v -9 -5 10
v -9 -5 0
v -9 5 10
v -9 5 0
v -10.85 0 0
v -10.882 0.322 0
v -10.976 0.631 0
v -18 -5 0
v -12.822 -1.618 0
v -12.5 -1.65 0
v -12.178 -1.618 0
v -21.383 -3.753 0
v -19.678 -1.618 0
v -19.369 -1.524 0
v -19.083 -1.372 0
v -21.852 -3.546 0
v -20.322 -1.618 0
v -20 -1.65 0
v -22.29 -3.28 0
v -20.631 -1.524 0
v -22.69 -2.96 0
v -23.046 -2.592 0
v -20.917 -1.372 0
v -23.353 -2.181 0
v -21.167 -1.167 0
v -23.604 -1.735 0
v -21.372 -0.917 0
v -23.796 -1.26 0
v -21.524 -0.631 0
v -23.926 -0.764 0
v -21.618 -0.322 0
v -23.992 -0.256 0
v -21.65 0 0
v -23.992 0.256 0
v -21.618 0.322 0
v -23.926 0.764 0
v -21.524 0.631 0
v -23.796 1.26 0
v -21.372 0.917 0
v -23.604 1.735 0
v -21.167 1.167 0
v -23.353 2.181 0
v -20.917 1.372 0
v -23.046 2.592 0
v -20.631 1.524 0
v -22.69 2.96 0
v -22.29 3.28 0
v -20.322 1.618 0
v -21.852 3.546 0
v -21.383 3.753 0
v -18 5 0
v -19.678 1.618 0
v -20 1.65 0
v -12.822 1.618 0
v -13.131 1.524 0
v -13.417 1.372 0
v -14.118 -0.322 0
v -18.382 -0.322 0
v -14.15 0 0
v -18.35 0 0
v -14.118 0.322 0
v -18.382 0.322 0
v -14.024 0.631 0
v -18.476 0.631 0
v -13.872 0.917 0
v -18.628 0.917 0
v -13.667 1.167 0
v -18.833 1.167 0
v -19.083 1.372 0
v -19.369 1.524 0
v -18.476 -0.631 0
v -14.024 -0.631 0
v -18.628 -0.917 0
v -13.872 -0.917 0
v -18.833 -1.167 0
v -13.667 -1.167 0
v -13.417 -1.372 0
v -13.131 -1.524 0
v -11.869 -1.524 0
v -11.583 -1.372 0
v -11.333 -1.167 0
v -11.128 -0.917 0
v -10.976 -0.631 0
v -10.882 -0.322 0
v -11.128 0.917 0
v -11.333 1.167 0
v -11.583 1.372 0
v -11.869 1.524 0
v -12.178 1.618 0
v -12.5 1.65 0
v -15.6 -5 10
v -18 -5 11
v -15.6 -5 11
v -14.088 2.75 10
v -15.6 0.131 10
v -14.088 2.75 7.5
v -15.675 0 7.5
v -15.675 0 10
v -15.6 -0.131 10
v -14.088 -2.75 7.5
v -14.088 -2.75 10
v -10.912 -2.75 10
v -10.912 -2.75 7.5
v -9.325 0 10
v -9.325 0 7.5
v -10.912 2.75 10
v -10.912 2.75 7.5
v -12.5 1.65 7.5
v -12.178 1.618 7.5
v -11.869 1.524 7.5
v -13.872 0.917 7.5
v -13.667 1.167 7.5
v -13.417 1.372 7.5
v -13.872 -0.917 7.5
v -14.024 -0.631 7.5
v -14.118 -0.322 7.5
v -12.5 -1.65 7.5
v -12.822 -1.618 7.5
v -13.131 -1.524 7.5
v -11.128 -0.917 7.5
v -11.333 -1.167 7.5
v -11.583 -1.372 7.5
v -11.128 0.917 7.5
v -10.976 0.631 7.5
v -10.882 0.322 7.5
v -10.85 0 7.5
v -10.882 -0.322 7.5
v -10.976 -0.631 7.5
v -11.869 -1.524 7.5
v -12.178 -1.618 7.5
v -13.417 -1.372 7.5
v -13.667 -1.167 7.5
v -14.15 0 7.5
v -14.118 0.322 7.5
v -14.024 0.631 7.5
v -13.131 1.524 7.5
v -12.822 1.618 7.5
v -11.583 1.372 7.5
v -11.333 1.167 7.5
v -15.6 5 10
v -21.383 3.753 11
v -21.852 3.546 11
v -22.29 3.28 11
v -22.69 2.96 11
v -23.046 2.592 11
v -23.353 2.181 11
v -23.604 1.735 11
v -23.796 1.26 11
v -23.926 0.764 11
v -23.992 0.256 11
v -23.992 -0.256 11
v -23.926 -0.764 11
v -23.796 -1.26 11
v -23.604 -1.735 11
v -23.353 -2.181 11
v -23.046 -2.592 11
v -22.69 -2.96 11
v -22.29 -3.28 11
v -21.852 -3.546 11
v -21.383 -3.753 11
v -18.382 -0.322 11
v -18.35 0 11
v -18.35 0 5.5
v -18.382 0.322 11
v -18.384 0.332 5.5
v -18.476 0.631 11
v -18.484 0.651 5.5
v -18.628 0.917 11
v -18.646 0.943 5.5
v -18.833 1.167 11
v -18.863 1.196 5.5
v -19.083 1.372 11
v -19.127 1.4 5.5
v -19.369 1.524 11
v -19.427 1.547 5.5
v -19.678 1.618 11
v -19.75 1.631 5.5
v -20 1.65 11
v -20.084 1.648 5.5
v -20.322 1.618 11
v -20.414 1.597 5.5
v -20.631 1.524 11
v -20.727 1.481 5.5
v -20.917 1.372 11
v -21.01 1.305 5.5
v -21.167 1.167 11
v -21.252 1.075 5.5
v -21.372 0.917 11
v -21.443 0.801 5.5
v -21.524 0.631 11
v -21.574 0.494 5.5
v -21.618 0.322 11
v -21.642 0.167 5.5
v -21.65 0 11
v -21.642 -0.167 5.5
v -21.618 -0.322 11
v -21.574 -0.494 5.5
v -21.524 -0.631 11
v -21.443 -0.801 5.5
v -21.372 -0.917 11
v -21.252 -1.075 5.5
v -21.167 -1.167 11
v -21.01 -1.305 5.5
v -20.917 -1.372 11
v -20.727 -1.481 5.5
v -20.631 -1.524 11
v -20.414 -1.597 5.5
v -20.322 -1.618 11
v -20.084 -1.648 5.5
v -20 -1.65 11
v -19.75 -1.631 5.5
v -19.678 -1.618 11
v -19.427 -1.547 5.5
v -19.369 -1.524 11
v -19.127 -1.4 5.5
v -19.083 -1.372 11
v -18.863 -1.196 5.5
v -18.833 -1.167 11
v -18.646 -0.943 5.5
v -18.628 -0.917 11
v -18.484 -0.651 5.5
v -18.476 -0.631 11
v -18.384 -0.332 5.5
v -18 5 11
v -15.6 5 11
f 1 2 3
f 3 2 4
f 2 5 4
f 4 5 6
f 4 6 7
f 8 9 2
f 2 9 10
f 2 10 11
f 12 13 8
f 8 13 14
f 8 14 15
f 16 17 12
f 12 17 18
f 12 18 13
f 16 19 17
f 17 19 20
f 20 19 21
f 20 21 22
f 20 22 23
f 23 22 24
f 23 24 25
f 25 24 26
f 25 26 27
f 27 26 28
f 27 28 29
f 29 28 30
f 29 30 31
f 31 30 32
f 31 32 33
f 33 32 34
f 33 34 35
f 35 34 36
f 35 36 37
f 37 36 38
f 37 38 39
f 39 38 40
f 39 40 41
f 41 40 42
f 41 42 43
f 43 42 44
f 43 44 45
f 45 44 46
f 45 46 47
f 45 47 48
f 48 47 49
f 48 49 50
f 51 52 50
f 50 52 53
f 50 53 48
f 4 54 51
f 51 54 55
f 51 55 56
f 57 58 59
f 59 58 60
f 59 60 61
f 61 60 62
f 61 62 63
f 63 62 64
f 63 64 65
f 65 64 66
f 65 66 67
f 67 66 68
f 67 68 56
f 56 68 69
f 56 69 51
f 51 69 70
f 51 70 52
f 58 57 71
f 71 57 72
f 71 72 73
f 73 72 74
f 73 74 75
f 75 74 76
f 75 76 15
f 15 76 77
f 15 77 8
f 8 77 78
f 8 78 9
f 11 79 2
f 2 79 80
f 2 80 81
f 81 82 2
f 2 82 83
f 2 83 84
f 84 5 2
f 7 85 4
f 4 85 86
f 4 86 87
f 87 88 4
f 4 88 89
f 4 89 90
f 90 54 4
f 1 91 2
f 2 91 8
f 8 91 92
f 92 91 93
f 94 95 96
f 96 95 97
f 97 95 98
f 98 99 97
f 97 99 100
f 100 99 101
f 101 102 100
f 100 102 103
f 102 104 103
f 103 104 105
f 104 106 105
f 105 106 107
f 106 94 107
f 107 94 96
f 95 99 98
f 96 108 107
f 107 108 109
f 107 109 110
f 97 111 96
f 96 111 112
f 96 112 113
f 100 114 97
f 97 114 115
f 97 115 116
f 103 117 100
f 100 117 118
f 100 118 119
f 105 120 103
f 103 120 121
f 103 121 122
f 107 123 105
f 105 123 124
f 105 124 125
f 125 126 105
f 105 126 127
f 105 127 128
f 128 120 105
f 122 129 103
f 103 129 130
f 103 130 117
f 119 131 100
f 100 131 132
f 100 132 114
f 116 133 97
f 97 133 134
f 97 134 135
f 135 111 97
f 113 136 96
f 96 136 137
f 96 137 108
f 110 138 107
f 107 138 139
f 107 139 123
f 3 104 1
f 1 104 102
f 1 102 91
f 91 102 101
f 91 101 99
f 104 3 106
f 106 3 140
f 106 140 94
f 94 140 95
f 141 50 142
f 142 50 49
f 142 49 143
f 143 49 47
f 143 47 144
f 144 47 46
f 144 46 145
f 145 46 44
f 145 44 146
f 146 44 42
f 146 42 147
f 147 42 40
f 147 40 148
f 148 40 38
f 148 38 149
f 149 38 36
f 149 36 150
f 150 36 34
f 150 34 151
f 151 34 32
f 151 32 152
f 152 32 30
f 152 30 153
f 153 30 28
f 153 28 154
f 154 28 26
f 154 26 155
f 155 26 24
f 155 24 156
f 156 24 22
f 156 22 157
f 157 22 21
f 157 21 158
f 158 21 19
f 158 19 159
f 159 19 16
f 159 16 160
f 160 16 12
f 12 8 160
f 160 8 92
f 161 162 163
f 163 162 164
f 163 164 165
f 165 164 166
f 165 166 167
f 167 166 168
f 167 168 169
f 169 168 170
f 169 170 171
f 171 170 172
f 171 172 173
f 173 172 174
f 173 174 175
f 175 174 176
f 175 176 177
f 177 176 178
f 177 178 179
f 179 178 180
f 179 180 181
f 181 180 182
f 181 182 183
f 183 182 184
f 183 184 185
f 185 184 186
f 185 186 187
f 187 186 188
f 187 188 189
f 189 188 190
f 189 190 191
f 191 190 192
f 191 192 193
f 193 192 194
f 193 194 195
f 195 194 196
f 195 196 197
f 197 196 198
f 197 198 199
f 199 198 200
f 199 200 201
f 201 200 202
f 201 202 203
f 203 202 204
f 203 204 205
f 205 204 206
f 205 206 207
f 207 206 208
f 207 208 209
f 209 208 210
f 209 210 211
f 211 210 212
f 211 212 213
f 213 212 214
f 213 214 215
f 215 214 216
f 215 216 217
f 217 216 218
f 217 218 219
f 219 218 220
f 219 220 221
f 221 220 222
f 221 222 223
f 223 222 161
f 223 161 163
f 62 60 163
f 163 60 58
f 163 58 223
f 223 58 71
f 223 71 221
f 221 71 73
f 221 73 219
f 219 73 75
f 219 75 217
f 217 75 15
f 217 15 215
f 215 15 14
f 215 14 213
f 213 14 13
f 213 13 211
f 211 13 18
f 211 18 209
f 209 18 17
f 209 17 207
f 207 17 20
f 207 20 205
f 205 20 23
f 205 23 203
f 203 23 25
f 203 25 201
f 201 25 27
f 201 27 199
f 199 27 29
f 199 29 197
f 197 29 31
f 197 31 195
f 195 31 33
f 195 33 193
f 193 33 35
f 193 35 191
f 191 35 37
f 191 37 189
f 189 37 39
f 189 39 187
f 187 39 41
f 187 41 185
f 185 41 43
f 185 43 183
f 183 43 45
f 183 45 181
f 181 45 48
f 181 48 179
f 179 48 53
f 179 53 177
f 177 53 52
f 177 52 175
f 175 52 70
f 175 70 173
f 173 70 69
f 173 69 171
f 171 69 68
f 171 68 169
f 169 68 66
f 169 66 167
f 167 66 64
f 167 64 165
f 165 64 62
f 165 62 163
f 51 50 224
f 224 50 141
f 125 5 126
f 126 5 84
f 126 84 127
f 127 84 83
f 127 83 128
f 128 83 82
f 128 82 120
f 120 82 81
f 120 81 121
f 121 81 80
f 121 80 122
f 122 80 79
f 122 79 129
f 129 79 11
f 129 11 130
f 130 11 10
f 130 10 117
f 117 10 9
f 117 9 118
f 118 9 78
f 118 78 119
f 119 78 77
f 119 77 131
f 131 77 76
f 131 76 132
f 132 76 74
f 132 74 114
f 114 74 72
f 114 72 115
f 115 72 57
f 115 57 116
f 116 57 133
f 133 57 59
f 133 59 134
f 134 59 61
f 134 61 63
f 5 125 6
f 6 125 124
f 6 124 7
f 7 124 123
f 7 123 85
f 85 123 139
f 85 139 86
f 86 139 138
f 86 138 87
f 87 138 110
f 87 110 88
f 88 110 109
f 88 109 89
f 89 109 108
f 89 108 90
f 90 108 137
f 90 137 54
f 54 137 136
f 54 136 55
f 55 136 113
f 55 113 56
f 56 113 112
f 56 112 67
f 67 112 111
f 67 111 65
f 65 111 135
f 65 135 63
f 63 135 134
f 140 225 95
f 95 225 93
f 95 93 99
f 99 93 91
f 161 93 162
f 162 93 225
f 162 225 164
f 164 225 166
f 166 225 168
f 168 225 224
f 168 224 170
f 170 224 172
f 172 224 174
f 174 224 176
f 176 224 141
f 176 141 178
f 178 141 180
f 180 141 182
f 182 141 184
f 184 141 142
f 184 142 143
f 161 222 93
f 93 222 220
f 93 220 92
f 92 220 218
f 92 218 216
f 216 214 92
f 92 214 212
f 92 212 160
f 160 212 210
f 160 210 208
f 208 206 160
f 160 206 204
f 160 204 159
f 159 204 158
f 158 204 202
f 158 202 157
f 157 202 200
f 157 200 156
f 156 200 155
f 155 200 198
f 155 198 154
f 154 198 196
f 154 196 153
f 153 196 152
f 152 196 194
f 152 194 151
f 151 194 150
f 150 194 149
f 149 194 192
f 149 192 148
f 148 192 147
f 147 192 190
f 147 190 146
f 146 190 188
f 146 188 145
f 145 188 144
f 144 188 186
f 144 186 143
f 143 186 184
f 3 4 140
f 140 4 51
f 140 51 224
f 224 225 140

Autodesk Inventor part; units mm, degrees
ref_plane "YZ Plane" through (0, 0, 0) normal (1, 0, 0) x (0, 1, 0)
ref_plane "XZ Plane" through (0, 0, 0) normal (0, 1, 0) x (-1, 0, 0)
ref_plane "XY Plane" through (0, 0, 0) normal (0, 0, 1) x (1, 0, 0)
sketch "Sketch2" plane through (0, 0, 0) normal (0, 0, 1) x (1, 0, 0)
  line L0 (-18, 5) -> (18, 5)
  line L1 (18, 5) -> (18, -5)
  line L2 (18, -5) -> (-18, -5)
  line L3 (-18, -5) -> (-18, 5)
  line L4 (-18, 5) -> (18, -5) construction
  line L5 (18, 5) -> (-18, -5) construction
  point P0 (0, 0)
  dimension "d0" = 10
  dimension "d1" = 36
extrude "Extrusion1" add sketch "Sketch2" along normal blind 11
sketch "Sketch3" plane through (0, 0, 11) normal (0, 0, 1) x (1, 0, 0)
  line L0 (-15.6, 12.15) -> (15.6, 12.15)
  line L1 (15.6, 12.15) -> (15.6, -12.15)
  line L2 (15.6, -12.15) -> (-15.6, -12.15)
  line L3 (-15.6, -12.15) -> (-15.6, 12.15)
  line L4 (-15.6, 12.15) -> (15.6, -12.15) construction
  line L5 (15.6, 12.15) -> (-15.6, -12.15) construction
  point P0 (0, 0)
  dimension "d4" = 31.2
  dimension "d5" = 24.3
extrude "Extrusion2" cut sketch "Sketch3" against normal blind 1
sketch "Sketch4" plane through (0, 0, 10) normal (0, 0, 1) x (1, 0, 0)
  circle A0 centre (12.5, 0) radius 1.65
  line L0 (0, 0) -> (0, 4.6535) construction
  circle A1 centre (-12.5, 0) radius 1.65
  point P0 (-61.5247, -30.2854)
  point P1 (15.4586, -30.2854)
  dimension "d39" = 3.3
  dimension "d40" = 25
extrude "Extrusion3" cut sketch "Sketch4" against normal through all
sketch "Sketch7" plane through (0, 0, 11) normal (0, 0, 1) x (1, 0, 0)
  arc A0 (21.3831, -3.7533) -> (21.3831, 3.7533) centre (20, 0) ccw
  line L0 (21.3831, 3.7533) -> (18, 5)
  line L1 (18, 5) -> (18, -5)
  line L2 (18, -5) -> (21.3831, -3.7533)
  line L3 (0, 20.7674) -> (0, -20.7674) construction
  arc A1 (-21.3831, 3.7533) -> (-21.3831, -3.7533) centre (-20, 0) ccw
  line L4 (-21.3831, 3.7533) -> (-18, 5)
  line L5 (-18, 5) -> (-18, -5)
  line L6 (-18, -5) -> (-21.3831, -3.7533)
  line L7 (18, -5) -> (18, 5) construction
  circle A2 centre (20, 0) radius 1.65
  circle A3 centre (-20, 0) radius 1.65
  line L8 (0, 0) -> (1.9739, 0) construction
  dimension "d28" = 3.3
  dimension "d29" = 4
  dimension "d30" = 40
  dimension "d31" = 10
extrude "Extrusion6" add sketch "Sketch7" against normal up to surface (11 mm away)
sketch "Sketch9" plane through (0, 0, 10) normal (0, 0, 1) x (1, 0, 0)
  circle A0 centre (-12.5, 0) radius 1.65 projected
  line L0 (-9.3246, 0) -> (-10.9123, -2.75)
  line L1 (-10.9123, -2.75) -> (-14.0877, -2.75)
  line L2 (-14.0877, -2.75) -> (-15.6754, 0)
  line L3 (-15.6754, 0) -> (-14.0877, 2.75)
  line L4 (-14.0877, 2.75) -> (-10.9123, 2.75)
  line L5 (-10.9123, 2.75) -> (-9.3246, 0)
  line L6 (0, 0) -> (0, 3.6506) construction
  circle A1 centre (12.5, 0) radius 1.65
  line L7 (9.3246, 0) -> (10.9123, -2.75)
  line L8 (10.9123, -2.75) -> (14.0877, -2.75)
  line L9 (14.0877, -2.75) -> (15.6754, 0)
  line L10 (15.6754, 0) -> (14.0877, 2.75)
  line L11 (14.0877, 2.75) -> (10.9123, 2.75)
  line L12 (10.9123, 2.75) -> (9.3246, 0)
  dimension "d41" = 5.5
extrude "Extrusion8" cut sketch "Sketch9" against normal blind 2.5
sketch "Sketch8" plane through (0, 0, 0) normal (1, 0, 0) x (0, 1, 0)
  line L0 (45.1511, -28.2394) -> (-45.1511, -28.2394)
  line L1 (-45.1511, -28.2394) -> (-45.1511, 28.2394)
  line L2 (-45.1511, 28.2394) -> (45.1511, 28.2394)
  line L3 (45.1511, 28.2394) -> (45.1511, -28.2394)
  line L4 (45.1511, -28.2394) -> (-45.1511, 28.2394) construction
  line L5 (-45.1511, -28.2394) -> (45.1511, 28.2394) construction
  point P0 (0, 0)
extrude "Extrusion7" cut sketch "Sketch8" along normal blind 24 and the other way blind 9
properties part number "power_signal_socket_fixed3" material "Acetal Resin, Black"
